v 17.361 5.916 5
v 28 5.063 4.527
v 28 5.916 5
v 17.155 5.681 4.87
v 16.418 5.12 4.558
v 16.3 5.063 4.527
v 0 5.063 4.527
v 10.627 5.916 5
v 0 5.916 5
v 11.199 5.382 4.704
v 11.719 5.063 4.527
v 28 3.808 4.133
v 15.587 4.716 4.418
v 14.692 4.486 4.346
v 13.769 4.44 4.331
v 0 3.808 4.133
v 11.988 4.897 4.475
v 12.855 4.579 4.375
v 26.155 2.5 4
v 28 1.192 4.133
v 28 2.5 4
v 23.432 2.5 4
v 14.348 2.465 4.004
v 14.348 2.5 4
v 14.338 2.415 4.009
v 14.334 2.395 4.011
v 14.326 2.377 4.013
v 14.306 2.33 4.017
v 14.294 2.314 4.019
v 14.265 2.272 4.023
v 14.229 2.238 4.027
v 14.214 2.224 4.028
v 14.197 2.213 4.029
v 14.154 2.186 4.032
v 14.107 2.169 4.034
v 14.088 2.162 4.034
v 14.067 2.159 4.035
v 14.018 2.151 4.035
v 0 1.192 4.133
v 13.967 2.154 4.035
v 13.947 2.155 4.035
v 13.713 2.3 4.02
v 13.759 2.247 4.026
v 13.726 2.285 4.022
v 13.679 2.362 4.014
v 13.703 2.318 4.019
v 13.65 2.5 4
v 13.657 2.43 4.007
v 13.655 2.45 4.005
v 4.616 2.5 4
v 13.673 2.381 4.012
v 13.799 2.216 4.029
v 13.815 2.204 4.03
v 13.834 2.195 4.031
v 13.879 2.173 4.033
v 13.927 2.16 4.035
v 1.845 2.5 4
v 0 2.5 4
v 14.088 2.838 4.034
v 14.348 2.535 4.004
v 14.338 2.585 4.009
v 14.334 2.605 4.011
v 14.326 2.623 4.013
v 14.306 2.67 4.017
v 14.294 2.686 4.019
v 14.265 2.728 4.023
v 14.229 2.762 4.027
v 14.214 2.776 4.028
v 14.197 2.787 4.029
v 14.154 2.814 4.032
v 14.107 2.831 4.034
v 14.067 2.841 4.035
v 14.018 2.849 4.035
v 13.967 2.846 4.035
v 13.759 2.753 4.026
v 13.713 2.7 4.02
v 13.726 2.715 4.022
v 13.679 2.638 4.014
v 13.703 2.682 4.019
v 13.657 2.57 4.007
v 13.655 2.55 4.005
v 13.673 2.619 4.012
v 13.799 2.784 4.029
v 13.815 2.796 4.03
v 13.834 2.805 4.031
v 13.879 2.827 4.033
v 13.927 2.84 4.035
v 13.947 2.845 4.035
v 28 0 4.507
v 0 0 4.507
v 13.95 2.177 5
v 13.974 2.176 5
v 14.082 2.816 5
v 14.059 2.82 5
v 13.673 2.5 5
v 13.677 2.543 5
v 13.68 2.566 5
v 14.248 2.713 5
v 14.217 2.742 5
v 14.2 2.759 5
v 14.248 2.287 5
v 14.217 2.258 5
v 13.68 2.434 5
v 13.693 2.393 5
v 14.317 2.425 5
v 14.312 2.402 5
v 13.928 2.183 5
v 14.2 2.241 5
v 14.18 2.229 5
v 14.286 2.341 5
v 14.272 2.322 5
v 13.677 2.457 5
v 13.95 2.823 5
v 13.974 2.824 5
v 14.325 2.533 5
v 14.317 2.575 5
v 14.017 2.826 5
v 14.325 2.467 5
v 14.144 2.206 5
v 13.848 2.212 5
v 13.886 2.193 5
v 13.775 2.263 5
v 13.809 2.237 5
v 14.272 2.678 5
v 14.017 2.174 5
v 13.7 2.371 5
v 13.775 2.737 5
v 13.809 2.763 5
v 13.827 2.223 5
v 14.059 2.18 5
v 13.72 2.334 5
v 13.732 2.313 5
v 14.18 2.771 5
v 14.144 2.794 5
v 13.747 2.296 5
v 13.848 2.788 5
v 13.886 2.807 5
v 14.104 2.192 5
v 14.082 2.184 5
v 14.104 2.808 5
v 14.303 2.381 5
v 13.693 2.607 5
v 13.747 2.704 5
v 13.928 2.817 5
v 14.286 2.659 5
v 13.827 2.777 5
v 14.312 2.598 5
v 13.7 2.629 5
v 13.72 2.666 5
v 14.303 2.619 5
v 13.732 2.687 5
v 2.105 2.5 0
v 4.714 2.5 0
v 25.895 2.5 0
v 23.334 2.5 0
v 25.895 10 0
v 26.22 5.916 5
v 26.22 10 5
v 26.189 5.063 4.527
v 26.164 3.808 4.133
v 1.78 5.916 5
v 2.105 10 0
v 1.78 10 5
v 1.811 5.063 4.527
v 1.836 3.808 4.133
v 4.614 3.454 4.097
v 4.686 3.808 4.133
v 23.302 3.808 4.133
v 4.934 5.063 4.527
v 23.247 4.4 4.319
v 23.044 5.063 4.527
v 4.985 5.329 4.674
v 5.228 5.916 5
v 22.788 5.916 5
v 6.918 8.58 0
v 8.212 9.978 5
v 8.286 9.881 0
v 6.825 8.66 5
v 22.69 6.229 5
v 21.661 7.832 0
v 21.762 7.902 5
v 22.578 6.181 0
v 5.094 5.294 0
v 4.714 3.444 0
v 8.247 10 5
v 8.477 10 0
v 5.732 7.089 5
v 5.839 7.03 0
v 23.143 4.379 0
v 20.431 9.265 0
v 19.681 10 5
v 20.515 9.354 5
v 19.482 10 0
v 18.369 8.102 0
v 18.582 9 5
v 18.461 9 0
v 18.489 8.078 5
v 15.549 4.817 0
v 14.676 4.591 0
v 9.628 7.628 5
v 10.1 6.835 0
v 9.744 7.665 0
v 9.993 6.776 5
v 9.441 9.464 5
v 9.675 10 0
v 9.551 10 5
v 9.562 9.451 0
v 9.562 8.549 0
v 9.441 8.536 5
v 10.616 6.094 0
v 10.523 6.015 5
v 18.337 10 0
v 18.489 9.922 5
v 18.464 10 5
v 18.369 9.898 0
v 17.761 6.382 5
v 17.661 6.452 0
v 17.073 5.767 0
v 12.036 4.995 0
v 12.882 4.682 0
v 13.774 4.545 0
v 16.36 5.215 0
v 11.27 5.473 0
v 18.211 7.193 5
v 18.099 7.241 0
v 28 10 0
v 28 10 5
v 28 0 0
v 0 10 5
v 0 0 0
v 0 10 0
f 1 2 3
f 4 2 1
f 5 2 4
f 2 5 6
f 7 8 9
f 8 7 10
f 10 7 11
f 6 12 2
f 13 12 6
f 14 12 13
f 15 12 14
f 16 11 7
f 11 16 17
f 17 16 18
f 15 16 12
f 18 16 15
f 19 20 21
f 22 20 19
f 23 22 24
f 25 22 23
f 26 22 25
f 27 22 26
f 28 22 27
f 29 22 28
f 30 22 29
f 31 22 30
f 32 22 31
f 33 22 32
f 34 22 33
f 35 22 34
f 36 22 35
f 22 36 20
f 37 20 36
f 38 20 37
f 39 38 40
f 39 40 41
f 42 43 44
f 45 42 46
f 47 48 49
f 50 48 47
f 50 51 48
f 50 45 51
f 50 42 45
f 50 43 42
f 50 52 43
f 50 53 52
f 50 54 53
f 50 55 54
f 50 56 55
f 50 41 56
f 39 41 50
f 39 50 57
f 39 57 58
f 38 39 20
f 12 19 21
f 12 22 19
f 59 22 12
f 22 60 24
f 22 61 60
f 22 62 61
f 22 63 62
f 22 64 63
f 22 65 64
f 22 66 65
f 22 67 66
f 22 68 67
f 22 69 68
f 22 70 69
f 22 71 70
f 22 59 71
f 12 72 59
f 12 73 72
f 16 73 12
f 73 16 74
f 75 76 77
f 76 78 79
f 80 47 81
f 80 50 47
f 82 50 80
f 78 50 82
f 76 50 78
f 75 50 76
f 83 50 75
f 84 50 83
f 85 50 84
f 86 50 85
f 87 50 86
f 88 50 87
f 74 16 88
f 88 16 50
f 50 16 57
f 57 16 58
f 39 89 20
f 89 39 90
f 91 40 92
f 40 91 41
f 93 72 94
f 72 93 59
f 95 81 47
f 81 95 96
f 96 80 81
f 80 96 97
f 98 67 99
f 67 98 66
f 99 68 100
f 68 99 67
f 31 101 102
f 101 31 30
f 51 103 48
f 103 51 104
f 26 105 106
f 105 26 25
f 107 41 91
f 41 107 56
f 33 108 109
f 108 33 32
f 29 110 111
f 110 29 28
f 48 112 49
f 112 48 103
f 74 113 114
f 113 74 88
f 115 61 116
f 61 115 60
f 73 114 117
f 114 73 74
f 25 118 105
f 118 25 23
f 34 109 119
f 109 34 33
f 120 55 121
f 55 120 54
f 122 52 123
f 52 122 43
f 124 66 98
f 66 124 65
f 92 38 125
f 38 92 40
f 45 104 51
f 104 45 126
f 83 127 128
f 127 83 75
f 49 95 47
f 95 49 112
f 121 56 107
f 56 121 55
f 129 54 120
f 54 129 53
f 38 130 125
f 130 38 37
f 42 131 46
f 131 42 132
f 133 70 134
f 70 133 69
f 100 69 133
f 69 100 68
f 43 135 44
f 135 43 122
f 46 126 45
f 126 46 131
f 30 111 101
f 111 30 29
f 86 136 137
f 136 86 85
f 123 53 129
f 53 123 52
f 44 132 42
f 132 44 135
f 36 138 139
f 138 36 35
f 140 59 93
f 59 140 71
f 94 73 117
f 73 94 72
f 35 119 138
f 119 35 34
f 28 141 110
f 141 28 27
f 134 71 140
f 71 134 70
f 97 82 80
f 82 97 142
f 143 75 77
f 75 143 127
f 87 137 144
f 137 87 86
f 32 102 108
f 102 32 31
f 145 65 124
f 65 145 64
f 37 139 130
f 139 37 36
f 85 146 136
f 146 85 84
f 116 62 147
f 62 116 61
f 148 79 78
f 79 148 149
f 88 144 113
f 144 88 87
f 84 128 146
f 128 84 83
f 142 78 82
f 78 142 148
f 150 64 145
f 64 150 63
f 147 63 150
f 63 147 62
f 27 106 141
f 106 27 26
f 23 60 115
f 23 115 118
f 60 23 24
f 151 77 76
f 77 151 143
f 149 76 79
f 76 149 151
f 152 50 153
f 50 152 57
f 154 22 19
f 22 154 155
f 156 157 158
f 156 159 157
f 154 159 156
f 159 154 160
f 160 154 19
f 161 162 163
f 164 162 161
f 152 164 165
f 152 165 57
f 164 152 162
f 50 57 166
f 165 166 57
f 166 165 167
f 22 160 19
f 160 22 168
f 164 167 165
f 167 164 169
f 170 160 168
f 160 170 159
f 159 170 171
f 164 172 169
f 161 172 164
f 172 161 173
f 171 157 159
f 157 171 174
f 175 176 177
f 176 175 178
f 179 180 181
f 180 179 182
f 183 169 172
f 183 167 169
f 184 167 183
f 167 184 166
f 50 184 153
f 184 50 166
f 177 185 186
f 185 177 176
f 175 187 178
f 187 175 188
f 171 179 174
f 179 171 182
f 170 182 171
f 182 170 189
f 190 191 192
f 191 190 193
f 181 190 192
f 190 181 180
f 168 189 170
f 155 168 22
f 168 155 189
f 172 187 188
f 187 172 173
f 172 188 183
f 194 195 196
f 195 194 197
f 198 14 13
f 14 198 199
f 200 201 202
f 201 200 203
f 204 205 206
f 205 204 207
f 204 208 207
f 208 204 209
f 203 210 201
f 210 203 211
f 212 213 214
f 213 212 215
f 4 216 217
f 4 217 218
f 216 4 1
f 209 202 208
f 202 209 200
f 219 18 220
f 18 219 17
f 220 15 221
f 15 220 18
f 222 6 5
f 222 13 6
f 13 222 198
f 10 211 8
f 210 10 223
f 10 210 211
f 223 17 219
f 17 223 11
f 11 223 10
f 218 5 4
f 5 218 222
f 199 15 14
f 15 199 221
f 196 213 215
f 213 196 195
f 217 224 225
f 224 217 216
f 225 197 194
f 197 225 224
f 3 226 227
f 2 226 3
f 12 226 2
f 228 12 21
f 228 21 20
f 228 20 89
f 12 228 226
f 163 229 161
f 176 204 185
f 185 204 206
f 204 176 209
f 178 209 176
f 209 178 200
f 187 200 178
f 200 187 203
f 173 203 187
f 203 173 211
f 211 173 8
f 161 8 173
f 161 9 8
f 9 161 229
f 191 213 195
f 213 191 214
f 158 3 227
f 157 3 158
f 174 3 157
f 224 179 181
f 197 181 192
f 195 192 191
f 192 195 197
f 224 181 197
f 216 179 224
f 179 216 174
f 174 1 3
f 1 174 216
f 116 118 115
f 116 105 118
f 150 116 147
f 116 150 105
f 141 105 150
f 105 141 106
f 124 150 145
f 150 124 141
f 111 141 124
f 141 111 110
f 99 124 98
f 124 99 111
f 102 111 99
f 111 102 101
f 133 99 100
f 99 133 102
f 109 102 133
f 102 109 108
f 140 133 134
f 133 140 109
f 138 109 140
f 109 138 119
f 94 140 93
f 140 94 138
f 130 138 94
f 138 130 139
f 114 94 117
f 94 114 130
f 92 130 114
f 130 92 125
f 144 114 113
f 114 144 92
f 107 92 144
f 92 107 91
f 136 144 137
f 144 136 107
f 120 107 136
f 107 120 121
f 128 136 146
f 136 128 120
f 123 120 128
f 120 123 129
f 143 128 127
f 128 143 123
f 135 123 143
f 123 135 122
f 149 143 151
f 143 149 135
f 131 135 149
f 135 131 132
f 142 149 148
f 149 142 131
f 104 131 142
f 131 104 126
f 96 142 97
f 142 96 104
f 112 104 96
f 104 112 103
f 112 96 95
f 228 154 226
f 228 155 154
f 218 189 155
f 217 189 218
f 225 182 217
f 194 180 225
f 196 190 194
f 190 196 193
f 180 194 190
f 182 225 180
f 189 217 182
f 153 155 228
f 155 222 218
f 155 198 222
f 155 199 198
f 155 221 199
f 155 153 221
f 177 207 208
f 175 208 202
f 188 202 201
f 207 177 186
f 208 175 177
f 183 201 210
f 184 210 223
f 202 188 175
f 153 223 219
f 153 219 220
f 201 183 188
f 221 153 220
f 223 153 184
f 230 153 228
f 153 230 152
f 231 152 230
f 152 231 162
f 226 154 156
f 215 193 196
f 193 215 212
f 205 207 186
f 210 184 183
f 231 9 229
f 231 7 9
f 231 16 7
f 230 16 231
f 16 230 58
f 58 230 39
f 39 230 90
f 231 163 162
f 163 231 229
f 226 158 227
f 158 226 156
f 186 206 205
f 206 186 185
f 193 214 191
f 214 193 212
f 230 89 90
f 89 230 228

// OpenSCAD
width  =  28;
height =   5;
length =  10;

module irrigator() {
    translate([-26,0,193.5])
    color("blue",1.0)
    rotate([0,90,0])
    difference(){
    cylinder(h=52,r1=6.5,r2=6.5,center=false,$fn=31);
    
    translate([0,0,-13])
    cylinder(h=78,r1=4.875,r2=4.875,center=false,$fn=31);
    
    //hole
    translate([0,0,26])
    rotate([0,90,0])
    cylinder(h=13,r1=0.2,r2=0.5,center=false,$fn=31);
    
    }
    difference(){
    translate([-13,0,0])
    color("green",1.0)
    cube([26, 13, 200],center=false);
    
    rotate([0,3.7189939731580433,0])
    translate([0,-1,0])
    color("red",1.0)
    cube([13, 39, 200],center=false);
    
    rotate([0,-3.7189939731580433,0])
    translate([-13,-1,0])
    color("yellow",1.0)
    cube([13, 39, 200],center=false);
    
    color("green",1.0)
    translate([-26,0,193.5])
    rotate([0,90,0])
    cylinder(h=52,r1=6.5,r2=6.5,center=false,$fn=31);
    
    translate([0,0,200])
    rotate([180,0,0])
    cylinder(h=398.7,r1=9.75,r2=0,center=false,$fn=31);
    
    }
    translate([0,6.5,200])
    rotate([180,0,0])
    cylinder(h=200,r1=4.875,r2=0,center=false,$fn=31);
}

difference() {
    cube([ width, length, height ]);
    translate([width/2, length/4, -183]) irrigator();
}
